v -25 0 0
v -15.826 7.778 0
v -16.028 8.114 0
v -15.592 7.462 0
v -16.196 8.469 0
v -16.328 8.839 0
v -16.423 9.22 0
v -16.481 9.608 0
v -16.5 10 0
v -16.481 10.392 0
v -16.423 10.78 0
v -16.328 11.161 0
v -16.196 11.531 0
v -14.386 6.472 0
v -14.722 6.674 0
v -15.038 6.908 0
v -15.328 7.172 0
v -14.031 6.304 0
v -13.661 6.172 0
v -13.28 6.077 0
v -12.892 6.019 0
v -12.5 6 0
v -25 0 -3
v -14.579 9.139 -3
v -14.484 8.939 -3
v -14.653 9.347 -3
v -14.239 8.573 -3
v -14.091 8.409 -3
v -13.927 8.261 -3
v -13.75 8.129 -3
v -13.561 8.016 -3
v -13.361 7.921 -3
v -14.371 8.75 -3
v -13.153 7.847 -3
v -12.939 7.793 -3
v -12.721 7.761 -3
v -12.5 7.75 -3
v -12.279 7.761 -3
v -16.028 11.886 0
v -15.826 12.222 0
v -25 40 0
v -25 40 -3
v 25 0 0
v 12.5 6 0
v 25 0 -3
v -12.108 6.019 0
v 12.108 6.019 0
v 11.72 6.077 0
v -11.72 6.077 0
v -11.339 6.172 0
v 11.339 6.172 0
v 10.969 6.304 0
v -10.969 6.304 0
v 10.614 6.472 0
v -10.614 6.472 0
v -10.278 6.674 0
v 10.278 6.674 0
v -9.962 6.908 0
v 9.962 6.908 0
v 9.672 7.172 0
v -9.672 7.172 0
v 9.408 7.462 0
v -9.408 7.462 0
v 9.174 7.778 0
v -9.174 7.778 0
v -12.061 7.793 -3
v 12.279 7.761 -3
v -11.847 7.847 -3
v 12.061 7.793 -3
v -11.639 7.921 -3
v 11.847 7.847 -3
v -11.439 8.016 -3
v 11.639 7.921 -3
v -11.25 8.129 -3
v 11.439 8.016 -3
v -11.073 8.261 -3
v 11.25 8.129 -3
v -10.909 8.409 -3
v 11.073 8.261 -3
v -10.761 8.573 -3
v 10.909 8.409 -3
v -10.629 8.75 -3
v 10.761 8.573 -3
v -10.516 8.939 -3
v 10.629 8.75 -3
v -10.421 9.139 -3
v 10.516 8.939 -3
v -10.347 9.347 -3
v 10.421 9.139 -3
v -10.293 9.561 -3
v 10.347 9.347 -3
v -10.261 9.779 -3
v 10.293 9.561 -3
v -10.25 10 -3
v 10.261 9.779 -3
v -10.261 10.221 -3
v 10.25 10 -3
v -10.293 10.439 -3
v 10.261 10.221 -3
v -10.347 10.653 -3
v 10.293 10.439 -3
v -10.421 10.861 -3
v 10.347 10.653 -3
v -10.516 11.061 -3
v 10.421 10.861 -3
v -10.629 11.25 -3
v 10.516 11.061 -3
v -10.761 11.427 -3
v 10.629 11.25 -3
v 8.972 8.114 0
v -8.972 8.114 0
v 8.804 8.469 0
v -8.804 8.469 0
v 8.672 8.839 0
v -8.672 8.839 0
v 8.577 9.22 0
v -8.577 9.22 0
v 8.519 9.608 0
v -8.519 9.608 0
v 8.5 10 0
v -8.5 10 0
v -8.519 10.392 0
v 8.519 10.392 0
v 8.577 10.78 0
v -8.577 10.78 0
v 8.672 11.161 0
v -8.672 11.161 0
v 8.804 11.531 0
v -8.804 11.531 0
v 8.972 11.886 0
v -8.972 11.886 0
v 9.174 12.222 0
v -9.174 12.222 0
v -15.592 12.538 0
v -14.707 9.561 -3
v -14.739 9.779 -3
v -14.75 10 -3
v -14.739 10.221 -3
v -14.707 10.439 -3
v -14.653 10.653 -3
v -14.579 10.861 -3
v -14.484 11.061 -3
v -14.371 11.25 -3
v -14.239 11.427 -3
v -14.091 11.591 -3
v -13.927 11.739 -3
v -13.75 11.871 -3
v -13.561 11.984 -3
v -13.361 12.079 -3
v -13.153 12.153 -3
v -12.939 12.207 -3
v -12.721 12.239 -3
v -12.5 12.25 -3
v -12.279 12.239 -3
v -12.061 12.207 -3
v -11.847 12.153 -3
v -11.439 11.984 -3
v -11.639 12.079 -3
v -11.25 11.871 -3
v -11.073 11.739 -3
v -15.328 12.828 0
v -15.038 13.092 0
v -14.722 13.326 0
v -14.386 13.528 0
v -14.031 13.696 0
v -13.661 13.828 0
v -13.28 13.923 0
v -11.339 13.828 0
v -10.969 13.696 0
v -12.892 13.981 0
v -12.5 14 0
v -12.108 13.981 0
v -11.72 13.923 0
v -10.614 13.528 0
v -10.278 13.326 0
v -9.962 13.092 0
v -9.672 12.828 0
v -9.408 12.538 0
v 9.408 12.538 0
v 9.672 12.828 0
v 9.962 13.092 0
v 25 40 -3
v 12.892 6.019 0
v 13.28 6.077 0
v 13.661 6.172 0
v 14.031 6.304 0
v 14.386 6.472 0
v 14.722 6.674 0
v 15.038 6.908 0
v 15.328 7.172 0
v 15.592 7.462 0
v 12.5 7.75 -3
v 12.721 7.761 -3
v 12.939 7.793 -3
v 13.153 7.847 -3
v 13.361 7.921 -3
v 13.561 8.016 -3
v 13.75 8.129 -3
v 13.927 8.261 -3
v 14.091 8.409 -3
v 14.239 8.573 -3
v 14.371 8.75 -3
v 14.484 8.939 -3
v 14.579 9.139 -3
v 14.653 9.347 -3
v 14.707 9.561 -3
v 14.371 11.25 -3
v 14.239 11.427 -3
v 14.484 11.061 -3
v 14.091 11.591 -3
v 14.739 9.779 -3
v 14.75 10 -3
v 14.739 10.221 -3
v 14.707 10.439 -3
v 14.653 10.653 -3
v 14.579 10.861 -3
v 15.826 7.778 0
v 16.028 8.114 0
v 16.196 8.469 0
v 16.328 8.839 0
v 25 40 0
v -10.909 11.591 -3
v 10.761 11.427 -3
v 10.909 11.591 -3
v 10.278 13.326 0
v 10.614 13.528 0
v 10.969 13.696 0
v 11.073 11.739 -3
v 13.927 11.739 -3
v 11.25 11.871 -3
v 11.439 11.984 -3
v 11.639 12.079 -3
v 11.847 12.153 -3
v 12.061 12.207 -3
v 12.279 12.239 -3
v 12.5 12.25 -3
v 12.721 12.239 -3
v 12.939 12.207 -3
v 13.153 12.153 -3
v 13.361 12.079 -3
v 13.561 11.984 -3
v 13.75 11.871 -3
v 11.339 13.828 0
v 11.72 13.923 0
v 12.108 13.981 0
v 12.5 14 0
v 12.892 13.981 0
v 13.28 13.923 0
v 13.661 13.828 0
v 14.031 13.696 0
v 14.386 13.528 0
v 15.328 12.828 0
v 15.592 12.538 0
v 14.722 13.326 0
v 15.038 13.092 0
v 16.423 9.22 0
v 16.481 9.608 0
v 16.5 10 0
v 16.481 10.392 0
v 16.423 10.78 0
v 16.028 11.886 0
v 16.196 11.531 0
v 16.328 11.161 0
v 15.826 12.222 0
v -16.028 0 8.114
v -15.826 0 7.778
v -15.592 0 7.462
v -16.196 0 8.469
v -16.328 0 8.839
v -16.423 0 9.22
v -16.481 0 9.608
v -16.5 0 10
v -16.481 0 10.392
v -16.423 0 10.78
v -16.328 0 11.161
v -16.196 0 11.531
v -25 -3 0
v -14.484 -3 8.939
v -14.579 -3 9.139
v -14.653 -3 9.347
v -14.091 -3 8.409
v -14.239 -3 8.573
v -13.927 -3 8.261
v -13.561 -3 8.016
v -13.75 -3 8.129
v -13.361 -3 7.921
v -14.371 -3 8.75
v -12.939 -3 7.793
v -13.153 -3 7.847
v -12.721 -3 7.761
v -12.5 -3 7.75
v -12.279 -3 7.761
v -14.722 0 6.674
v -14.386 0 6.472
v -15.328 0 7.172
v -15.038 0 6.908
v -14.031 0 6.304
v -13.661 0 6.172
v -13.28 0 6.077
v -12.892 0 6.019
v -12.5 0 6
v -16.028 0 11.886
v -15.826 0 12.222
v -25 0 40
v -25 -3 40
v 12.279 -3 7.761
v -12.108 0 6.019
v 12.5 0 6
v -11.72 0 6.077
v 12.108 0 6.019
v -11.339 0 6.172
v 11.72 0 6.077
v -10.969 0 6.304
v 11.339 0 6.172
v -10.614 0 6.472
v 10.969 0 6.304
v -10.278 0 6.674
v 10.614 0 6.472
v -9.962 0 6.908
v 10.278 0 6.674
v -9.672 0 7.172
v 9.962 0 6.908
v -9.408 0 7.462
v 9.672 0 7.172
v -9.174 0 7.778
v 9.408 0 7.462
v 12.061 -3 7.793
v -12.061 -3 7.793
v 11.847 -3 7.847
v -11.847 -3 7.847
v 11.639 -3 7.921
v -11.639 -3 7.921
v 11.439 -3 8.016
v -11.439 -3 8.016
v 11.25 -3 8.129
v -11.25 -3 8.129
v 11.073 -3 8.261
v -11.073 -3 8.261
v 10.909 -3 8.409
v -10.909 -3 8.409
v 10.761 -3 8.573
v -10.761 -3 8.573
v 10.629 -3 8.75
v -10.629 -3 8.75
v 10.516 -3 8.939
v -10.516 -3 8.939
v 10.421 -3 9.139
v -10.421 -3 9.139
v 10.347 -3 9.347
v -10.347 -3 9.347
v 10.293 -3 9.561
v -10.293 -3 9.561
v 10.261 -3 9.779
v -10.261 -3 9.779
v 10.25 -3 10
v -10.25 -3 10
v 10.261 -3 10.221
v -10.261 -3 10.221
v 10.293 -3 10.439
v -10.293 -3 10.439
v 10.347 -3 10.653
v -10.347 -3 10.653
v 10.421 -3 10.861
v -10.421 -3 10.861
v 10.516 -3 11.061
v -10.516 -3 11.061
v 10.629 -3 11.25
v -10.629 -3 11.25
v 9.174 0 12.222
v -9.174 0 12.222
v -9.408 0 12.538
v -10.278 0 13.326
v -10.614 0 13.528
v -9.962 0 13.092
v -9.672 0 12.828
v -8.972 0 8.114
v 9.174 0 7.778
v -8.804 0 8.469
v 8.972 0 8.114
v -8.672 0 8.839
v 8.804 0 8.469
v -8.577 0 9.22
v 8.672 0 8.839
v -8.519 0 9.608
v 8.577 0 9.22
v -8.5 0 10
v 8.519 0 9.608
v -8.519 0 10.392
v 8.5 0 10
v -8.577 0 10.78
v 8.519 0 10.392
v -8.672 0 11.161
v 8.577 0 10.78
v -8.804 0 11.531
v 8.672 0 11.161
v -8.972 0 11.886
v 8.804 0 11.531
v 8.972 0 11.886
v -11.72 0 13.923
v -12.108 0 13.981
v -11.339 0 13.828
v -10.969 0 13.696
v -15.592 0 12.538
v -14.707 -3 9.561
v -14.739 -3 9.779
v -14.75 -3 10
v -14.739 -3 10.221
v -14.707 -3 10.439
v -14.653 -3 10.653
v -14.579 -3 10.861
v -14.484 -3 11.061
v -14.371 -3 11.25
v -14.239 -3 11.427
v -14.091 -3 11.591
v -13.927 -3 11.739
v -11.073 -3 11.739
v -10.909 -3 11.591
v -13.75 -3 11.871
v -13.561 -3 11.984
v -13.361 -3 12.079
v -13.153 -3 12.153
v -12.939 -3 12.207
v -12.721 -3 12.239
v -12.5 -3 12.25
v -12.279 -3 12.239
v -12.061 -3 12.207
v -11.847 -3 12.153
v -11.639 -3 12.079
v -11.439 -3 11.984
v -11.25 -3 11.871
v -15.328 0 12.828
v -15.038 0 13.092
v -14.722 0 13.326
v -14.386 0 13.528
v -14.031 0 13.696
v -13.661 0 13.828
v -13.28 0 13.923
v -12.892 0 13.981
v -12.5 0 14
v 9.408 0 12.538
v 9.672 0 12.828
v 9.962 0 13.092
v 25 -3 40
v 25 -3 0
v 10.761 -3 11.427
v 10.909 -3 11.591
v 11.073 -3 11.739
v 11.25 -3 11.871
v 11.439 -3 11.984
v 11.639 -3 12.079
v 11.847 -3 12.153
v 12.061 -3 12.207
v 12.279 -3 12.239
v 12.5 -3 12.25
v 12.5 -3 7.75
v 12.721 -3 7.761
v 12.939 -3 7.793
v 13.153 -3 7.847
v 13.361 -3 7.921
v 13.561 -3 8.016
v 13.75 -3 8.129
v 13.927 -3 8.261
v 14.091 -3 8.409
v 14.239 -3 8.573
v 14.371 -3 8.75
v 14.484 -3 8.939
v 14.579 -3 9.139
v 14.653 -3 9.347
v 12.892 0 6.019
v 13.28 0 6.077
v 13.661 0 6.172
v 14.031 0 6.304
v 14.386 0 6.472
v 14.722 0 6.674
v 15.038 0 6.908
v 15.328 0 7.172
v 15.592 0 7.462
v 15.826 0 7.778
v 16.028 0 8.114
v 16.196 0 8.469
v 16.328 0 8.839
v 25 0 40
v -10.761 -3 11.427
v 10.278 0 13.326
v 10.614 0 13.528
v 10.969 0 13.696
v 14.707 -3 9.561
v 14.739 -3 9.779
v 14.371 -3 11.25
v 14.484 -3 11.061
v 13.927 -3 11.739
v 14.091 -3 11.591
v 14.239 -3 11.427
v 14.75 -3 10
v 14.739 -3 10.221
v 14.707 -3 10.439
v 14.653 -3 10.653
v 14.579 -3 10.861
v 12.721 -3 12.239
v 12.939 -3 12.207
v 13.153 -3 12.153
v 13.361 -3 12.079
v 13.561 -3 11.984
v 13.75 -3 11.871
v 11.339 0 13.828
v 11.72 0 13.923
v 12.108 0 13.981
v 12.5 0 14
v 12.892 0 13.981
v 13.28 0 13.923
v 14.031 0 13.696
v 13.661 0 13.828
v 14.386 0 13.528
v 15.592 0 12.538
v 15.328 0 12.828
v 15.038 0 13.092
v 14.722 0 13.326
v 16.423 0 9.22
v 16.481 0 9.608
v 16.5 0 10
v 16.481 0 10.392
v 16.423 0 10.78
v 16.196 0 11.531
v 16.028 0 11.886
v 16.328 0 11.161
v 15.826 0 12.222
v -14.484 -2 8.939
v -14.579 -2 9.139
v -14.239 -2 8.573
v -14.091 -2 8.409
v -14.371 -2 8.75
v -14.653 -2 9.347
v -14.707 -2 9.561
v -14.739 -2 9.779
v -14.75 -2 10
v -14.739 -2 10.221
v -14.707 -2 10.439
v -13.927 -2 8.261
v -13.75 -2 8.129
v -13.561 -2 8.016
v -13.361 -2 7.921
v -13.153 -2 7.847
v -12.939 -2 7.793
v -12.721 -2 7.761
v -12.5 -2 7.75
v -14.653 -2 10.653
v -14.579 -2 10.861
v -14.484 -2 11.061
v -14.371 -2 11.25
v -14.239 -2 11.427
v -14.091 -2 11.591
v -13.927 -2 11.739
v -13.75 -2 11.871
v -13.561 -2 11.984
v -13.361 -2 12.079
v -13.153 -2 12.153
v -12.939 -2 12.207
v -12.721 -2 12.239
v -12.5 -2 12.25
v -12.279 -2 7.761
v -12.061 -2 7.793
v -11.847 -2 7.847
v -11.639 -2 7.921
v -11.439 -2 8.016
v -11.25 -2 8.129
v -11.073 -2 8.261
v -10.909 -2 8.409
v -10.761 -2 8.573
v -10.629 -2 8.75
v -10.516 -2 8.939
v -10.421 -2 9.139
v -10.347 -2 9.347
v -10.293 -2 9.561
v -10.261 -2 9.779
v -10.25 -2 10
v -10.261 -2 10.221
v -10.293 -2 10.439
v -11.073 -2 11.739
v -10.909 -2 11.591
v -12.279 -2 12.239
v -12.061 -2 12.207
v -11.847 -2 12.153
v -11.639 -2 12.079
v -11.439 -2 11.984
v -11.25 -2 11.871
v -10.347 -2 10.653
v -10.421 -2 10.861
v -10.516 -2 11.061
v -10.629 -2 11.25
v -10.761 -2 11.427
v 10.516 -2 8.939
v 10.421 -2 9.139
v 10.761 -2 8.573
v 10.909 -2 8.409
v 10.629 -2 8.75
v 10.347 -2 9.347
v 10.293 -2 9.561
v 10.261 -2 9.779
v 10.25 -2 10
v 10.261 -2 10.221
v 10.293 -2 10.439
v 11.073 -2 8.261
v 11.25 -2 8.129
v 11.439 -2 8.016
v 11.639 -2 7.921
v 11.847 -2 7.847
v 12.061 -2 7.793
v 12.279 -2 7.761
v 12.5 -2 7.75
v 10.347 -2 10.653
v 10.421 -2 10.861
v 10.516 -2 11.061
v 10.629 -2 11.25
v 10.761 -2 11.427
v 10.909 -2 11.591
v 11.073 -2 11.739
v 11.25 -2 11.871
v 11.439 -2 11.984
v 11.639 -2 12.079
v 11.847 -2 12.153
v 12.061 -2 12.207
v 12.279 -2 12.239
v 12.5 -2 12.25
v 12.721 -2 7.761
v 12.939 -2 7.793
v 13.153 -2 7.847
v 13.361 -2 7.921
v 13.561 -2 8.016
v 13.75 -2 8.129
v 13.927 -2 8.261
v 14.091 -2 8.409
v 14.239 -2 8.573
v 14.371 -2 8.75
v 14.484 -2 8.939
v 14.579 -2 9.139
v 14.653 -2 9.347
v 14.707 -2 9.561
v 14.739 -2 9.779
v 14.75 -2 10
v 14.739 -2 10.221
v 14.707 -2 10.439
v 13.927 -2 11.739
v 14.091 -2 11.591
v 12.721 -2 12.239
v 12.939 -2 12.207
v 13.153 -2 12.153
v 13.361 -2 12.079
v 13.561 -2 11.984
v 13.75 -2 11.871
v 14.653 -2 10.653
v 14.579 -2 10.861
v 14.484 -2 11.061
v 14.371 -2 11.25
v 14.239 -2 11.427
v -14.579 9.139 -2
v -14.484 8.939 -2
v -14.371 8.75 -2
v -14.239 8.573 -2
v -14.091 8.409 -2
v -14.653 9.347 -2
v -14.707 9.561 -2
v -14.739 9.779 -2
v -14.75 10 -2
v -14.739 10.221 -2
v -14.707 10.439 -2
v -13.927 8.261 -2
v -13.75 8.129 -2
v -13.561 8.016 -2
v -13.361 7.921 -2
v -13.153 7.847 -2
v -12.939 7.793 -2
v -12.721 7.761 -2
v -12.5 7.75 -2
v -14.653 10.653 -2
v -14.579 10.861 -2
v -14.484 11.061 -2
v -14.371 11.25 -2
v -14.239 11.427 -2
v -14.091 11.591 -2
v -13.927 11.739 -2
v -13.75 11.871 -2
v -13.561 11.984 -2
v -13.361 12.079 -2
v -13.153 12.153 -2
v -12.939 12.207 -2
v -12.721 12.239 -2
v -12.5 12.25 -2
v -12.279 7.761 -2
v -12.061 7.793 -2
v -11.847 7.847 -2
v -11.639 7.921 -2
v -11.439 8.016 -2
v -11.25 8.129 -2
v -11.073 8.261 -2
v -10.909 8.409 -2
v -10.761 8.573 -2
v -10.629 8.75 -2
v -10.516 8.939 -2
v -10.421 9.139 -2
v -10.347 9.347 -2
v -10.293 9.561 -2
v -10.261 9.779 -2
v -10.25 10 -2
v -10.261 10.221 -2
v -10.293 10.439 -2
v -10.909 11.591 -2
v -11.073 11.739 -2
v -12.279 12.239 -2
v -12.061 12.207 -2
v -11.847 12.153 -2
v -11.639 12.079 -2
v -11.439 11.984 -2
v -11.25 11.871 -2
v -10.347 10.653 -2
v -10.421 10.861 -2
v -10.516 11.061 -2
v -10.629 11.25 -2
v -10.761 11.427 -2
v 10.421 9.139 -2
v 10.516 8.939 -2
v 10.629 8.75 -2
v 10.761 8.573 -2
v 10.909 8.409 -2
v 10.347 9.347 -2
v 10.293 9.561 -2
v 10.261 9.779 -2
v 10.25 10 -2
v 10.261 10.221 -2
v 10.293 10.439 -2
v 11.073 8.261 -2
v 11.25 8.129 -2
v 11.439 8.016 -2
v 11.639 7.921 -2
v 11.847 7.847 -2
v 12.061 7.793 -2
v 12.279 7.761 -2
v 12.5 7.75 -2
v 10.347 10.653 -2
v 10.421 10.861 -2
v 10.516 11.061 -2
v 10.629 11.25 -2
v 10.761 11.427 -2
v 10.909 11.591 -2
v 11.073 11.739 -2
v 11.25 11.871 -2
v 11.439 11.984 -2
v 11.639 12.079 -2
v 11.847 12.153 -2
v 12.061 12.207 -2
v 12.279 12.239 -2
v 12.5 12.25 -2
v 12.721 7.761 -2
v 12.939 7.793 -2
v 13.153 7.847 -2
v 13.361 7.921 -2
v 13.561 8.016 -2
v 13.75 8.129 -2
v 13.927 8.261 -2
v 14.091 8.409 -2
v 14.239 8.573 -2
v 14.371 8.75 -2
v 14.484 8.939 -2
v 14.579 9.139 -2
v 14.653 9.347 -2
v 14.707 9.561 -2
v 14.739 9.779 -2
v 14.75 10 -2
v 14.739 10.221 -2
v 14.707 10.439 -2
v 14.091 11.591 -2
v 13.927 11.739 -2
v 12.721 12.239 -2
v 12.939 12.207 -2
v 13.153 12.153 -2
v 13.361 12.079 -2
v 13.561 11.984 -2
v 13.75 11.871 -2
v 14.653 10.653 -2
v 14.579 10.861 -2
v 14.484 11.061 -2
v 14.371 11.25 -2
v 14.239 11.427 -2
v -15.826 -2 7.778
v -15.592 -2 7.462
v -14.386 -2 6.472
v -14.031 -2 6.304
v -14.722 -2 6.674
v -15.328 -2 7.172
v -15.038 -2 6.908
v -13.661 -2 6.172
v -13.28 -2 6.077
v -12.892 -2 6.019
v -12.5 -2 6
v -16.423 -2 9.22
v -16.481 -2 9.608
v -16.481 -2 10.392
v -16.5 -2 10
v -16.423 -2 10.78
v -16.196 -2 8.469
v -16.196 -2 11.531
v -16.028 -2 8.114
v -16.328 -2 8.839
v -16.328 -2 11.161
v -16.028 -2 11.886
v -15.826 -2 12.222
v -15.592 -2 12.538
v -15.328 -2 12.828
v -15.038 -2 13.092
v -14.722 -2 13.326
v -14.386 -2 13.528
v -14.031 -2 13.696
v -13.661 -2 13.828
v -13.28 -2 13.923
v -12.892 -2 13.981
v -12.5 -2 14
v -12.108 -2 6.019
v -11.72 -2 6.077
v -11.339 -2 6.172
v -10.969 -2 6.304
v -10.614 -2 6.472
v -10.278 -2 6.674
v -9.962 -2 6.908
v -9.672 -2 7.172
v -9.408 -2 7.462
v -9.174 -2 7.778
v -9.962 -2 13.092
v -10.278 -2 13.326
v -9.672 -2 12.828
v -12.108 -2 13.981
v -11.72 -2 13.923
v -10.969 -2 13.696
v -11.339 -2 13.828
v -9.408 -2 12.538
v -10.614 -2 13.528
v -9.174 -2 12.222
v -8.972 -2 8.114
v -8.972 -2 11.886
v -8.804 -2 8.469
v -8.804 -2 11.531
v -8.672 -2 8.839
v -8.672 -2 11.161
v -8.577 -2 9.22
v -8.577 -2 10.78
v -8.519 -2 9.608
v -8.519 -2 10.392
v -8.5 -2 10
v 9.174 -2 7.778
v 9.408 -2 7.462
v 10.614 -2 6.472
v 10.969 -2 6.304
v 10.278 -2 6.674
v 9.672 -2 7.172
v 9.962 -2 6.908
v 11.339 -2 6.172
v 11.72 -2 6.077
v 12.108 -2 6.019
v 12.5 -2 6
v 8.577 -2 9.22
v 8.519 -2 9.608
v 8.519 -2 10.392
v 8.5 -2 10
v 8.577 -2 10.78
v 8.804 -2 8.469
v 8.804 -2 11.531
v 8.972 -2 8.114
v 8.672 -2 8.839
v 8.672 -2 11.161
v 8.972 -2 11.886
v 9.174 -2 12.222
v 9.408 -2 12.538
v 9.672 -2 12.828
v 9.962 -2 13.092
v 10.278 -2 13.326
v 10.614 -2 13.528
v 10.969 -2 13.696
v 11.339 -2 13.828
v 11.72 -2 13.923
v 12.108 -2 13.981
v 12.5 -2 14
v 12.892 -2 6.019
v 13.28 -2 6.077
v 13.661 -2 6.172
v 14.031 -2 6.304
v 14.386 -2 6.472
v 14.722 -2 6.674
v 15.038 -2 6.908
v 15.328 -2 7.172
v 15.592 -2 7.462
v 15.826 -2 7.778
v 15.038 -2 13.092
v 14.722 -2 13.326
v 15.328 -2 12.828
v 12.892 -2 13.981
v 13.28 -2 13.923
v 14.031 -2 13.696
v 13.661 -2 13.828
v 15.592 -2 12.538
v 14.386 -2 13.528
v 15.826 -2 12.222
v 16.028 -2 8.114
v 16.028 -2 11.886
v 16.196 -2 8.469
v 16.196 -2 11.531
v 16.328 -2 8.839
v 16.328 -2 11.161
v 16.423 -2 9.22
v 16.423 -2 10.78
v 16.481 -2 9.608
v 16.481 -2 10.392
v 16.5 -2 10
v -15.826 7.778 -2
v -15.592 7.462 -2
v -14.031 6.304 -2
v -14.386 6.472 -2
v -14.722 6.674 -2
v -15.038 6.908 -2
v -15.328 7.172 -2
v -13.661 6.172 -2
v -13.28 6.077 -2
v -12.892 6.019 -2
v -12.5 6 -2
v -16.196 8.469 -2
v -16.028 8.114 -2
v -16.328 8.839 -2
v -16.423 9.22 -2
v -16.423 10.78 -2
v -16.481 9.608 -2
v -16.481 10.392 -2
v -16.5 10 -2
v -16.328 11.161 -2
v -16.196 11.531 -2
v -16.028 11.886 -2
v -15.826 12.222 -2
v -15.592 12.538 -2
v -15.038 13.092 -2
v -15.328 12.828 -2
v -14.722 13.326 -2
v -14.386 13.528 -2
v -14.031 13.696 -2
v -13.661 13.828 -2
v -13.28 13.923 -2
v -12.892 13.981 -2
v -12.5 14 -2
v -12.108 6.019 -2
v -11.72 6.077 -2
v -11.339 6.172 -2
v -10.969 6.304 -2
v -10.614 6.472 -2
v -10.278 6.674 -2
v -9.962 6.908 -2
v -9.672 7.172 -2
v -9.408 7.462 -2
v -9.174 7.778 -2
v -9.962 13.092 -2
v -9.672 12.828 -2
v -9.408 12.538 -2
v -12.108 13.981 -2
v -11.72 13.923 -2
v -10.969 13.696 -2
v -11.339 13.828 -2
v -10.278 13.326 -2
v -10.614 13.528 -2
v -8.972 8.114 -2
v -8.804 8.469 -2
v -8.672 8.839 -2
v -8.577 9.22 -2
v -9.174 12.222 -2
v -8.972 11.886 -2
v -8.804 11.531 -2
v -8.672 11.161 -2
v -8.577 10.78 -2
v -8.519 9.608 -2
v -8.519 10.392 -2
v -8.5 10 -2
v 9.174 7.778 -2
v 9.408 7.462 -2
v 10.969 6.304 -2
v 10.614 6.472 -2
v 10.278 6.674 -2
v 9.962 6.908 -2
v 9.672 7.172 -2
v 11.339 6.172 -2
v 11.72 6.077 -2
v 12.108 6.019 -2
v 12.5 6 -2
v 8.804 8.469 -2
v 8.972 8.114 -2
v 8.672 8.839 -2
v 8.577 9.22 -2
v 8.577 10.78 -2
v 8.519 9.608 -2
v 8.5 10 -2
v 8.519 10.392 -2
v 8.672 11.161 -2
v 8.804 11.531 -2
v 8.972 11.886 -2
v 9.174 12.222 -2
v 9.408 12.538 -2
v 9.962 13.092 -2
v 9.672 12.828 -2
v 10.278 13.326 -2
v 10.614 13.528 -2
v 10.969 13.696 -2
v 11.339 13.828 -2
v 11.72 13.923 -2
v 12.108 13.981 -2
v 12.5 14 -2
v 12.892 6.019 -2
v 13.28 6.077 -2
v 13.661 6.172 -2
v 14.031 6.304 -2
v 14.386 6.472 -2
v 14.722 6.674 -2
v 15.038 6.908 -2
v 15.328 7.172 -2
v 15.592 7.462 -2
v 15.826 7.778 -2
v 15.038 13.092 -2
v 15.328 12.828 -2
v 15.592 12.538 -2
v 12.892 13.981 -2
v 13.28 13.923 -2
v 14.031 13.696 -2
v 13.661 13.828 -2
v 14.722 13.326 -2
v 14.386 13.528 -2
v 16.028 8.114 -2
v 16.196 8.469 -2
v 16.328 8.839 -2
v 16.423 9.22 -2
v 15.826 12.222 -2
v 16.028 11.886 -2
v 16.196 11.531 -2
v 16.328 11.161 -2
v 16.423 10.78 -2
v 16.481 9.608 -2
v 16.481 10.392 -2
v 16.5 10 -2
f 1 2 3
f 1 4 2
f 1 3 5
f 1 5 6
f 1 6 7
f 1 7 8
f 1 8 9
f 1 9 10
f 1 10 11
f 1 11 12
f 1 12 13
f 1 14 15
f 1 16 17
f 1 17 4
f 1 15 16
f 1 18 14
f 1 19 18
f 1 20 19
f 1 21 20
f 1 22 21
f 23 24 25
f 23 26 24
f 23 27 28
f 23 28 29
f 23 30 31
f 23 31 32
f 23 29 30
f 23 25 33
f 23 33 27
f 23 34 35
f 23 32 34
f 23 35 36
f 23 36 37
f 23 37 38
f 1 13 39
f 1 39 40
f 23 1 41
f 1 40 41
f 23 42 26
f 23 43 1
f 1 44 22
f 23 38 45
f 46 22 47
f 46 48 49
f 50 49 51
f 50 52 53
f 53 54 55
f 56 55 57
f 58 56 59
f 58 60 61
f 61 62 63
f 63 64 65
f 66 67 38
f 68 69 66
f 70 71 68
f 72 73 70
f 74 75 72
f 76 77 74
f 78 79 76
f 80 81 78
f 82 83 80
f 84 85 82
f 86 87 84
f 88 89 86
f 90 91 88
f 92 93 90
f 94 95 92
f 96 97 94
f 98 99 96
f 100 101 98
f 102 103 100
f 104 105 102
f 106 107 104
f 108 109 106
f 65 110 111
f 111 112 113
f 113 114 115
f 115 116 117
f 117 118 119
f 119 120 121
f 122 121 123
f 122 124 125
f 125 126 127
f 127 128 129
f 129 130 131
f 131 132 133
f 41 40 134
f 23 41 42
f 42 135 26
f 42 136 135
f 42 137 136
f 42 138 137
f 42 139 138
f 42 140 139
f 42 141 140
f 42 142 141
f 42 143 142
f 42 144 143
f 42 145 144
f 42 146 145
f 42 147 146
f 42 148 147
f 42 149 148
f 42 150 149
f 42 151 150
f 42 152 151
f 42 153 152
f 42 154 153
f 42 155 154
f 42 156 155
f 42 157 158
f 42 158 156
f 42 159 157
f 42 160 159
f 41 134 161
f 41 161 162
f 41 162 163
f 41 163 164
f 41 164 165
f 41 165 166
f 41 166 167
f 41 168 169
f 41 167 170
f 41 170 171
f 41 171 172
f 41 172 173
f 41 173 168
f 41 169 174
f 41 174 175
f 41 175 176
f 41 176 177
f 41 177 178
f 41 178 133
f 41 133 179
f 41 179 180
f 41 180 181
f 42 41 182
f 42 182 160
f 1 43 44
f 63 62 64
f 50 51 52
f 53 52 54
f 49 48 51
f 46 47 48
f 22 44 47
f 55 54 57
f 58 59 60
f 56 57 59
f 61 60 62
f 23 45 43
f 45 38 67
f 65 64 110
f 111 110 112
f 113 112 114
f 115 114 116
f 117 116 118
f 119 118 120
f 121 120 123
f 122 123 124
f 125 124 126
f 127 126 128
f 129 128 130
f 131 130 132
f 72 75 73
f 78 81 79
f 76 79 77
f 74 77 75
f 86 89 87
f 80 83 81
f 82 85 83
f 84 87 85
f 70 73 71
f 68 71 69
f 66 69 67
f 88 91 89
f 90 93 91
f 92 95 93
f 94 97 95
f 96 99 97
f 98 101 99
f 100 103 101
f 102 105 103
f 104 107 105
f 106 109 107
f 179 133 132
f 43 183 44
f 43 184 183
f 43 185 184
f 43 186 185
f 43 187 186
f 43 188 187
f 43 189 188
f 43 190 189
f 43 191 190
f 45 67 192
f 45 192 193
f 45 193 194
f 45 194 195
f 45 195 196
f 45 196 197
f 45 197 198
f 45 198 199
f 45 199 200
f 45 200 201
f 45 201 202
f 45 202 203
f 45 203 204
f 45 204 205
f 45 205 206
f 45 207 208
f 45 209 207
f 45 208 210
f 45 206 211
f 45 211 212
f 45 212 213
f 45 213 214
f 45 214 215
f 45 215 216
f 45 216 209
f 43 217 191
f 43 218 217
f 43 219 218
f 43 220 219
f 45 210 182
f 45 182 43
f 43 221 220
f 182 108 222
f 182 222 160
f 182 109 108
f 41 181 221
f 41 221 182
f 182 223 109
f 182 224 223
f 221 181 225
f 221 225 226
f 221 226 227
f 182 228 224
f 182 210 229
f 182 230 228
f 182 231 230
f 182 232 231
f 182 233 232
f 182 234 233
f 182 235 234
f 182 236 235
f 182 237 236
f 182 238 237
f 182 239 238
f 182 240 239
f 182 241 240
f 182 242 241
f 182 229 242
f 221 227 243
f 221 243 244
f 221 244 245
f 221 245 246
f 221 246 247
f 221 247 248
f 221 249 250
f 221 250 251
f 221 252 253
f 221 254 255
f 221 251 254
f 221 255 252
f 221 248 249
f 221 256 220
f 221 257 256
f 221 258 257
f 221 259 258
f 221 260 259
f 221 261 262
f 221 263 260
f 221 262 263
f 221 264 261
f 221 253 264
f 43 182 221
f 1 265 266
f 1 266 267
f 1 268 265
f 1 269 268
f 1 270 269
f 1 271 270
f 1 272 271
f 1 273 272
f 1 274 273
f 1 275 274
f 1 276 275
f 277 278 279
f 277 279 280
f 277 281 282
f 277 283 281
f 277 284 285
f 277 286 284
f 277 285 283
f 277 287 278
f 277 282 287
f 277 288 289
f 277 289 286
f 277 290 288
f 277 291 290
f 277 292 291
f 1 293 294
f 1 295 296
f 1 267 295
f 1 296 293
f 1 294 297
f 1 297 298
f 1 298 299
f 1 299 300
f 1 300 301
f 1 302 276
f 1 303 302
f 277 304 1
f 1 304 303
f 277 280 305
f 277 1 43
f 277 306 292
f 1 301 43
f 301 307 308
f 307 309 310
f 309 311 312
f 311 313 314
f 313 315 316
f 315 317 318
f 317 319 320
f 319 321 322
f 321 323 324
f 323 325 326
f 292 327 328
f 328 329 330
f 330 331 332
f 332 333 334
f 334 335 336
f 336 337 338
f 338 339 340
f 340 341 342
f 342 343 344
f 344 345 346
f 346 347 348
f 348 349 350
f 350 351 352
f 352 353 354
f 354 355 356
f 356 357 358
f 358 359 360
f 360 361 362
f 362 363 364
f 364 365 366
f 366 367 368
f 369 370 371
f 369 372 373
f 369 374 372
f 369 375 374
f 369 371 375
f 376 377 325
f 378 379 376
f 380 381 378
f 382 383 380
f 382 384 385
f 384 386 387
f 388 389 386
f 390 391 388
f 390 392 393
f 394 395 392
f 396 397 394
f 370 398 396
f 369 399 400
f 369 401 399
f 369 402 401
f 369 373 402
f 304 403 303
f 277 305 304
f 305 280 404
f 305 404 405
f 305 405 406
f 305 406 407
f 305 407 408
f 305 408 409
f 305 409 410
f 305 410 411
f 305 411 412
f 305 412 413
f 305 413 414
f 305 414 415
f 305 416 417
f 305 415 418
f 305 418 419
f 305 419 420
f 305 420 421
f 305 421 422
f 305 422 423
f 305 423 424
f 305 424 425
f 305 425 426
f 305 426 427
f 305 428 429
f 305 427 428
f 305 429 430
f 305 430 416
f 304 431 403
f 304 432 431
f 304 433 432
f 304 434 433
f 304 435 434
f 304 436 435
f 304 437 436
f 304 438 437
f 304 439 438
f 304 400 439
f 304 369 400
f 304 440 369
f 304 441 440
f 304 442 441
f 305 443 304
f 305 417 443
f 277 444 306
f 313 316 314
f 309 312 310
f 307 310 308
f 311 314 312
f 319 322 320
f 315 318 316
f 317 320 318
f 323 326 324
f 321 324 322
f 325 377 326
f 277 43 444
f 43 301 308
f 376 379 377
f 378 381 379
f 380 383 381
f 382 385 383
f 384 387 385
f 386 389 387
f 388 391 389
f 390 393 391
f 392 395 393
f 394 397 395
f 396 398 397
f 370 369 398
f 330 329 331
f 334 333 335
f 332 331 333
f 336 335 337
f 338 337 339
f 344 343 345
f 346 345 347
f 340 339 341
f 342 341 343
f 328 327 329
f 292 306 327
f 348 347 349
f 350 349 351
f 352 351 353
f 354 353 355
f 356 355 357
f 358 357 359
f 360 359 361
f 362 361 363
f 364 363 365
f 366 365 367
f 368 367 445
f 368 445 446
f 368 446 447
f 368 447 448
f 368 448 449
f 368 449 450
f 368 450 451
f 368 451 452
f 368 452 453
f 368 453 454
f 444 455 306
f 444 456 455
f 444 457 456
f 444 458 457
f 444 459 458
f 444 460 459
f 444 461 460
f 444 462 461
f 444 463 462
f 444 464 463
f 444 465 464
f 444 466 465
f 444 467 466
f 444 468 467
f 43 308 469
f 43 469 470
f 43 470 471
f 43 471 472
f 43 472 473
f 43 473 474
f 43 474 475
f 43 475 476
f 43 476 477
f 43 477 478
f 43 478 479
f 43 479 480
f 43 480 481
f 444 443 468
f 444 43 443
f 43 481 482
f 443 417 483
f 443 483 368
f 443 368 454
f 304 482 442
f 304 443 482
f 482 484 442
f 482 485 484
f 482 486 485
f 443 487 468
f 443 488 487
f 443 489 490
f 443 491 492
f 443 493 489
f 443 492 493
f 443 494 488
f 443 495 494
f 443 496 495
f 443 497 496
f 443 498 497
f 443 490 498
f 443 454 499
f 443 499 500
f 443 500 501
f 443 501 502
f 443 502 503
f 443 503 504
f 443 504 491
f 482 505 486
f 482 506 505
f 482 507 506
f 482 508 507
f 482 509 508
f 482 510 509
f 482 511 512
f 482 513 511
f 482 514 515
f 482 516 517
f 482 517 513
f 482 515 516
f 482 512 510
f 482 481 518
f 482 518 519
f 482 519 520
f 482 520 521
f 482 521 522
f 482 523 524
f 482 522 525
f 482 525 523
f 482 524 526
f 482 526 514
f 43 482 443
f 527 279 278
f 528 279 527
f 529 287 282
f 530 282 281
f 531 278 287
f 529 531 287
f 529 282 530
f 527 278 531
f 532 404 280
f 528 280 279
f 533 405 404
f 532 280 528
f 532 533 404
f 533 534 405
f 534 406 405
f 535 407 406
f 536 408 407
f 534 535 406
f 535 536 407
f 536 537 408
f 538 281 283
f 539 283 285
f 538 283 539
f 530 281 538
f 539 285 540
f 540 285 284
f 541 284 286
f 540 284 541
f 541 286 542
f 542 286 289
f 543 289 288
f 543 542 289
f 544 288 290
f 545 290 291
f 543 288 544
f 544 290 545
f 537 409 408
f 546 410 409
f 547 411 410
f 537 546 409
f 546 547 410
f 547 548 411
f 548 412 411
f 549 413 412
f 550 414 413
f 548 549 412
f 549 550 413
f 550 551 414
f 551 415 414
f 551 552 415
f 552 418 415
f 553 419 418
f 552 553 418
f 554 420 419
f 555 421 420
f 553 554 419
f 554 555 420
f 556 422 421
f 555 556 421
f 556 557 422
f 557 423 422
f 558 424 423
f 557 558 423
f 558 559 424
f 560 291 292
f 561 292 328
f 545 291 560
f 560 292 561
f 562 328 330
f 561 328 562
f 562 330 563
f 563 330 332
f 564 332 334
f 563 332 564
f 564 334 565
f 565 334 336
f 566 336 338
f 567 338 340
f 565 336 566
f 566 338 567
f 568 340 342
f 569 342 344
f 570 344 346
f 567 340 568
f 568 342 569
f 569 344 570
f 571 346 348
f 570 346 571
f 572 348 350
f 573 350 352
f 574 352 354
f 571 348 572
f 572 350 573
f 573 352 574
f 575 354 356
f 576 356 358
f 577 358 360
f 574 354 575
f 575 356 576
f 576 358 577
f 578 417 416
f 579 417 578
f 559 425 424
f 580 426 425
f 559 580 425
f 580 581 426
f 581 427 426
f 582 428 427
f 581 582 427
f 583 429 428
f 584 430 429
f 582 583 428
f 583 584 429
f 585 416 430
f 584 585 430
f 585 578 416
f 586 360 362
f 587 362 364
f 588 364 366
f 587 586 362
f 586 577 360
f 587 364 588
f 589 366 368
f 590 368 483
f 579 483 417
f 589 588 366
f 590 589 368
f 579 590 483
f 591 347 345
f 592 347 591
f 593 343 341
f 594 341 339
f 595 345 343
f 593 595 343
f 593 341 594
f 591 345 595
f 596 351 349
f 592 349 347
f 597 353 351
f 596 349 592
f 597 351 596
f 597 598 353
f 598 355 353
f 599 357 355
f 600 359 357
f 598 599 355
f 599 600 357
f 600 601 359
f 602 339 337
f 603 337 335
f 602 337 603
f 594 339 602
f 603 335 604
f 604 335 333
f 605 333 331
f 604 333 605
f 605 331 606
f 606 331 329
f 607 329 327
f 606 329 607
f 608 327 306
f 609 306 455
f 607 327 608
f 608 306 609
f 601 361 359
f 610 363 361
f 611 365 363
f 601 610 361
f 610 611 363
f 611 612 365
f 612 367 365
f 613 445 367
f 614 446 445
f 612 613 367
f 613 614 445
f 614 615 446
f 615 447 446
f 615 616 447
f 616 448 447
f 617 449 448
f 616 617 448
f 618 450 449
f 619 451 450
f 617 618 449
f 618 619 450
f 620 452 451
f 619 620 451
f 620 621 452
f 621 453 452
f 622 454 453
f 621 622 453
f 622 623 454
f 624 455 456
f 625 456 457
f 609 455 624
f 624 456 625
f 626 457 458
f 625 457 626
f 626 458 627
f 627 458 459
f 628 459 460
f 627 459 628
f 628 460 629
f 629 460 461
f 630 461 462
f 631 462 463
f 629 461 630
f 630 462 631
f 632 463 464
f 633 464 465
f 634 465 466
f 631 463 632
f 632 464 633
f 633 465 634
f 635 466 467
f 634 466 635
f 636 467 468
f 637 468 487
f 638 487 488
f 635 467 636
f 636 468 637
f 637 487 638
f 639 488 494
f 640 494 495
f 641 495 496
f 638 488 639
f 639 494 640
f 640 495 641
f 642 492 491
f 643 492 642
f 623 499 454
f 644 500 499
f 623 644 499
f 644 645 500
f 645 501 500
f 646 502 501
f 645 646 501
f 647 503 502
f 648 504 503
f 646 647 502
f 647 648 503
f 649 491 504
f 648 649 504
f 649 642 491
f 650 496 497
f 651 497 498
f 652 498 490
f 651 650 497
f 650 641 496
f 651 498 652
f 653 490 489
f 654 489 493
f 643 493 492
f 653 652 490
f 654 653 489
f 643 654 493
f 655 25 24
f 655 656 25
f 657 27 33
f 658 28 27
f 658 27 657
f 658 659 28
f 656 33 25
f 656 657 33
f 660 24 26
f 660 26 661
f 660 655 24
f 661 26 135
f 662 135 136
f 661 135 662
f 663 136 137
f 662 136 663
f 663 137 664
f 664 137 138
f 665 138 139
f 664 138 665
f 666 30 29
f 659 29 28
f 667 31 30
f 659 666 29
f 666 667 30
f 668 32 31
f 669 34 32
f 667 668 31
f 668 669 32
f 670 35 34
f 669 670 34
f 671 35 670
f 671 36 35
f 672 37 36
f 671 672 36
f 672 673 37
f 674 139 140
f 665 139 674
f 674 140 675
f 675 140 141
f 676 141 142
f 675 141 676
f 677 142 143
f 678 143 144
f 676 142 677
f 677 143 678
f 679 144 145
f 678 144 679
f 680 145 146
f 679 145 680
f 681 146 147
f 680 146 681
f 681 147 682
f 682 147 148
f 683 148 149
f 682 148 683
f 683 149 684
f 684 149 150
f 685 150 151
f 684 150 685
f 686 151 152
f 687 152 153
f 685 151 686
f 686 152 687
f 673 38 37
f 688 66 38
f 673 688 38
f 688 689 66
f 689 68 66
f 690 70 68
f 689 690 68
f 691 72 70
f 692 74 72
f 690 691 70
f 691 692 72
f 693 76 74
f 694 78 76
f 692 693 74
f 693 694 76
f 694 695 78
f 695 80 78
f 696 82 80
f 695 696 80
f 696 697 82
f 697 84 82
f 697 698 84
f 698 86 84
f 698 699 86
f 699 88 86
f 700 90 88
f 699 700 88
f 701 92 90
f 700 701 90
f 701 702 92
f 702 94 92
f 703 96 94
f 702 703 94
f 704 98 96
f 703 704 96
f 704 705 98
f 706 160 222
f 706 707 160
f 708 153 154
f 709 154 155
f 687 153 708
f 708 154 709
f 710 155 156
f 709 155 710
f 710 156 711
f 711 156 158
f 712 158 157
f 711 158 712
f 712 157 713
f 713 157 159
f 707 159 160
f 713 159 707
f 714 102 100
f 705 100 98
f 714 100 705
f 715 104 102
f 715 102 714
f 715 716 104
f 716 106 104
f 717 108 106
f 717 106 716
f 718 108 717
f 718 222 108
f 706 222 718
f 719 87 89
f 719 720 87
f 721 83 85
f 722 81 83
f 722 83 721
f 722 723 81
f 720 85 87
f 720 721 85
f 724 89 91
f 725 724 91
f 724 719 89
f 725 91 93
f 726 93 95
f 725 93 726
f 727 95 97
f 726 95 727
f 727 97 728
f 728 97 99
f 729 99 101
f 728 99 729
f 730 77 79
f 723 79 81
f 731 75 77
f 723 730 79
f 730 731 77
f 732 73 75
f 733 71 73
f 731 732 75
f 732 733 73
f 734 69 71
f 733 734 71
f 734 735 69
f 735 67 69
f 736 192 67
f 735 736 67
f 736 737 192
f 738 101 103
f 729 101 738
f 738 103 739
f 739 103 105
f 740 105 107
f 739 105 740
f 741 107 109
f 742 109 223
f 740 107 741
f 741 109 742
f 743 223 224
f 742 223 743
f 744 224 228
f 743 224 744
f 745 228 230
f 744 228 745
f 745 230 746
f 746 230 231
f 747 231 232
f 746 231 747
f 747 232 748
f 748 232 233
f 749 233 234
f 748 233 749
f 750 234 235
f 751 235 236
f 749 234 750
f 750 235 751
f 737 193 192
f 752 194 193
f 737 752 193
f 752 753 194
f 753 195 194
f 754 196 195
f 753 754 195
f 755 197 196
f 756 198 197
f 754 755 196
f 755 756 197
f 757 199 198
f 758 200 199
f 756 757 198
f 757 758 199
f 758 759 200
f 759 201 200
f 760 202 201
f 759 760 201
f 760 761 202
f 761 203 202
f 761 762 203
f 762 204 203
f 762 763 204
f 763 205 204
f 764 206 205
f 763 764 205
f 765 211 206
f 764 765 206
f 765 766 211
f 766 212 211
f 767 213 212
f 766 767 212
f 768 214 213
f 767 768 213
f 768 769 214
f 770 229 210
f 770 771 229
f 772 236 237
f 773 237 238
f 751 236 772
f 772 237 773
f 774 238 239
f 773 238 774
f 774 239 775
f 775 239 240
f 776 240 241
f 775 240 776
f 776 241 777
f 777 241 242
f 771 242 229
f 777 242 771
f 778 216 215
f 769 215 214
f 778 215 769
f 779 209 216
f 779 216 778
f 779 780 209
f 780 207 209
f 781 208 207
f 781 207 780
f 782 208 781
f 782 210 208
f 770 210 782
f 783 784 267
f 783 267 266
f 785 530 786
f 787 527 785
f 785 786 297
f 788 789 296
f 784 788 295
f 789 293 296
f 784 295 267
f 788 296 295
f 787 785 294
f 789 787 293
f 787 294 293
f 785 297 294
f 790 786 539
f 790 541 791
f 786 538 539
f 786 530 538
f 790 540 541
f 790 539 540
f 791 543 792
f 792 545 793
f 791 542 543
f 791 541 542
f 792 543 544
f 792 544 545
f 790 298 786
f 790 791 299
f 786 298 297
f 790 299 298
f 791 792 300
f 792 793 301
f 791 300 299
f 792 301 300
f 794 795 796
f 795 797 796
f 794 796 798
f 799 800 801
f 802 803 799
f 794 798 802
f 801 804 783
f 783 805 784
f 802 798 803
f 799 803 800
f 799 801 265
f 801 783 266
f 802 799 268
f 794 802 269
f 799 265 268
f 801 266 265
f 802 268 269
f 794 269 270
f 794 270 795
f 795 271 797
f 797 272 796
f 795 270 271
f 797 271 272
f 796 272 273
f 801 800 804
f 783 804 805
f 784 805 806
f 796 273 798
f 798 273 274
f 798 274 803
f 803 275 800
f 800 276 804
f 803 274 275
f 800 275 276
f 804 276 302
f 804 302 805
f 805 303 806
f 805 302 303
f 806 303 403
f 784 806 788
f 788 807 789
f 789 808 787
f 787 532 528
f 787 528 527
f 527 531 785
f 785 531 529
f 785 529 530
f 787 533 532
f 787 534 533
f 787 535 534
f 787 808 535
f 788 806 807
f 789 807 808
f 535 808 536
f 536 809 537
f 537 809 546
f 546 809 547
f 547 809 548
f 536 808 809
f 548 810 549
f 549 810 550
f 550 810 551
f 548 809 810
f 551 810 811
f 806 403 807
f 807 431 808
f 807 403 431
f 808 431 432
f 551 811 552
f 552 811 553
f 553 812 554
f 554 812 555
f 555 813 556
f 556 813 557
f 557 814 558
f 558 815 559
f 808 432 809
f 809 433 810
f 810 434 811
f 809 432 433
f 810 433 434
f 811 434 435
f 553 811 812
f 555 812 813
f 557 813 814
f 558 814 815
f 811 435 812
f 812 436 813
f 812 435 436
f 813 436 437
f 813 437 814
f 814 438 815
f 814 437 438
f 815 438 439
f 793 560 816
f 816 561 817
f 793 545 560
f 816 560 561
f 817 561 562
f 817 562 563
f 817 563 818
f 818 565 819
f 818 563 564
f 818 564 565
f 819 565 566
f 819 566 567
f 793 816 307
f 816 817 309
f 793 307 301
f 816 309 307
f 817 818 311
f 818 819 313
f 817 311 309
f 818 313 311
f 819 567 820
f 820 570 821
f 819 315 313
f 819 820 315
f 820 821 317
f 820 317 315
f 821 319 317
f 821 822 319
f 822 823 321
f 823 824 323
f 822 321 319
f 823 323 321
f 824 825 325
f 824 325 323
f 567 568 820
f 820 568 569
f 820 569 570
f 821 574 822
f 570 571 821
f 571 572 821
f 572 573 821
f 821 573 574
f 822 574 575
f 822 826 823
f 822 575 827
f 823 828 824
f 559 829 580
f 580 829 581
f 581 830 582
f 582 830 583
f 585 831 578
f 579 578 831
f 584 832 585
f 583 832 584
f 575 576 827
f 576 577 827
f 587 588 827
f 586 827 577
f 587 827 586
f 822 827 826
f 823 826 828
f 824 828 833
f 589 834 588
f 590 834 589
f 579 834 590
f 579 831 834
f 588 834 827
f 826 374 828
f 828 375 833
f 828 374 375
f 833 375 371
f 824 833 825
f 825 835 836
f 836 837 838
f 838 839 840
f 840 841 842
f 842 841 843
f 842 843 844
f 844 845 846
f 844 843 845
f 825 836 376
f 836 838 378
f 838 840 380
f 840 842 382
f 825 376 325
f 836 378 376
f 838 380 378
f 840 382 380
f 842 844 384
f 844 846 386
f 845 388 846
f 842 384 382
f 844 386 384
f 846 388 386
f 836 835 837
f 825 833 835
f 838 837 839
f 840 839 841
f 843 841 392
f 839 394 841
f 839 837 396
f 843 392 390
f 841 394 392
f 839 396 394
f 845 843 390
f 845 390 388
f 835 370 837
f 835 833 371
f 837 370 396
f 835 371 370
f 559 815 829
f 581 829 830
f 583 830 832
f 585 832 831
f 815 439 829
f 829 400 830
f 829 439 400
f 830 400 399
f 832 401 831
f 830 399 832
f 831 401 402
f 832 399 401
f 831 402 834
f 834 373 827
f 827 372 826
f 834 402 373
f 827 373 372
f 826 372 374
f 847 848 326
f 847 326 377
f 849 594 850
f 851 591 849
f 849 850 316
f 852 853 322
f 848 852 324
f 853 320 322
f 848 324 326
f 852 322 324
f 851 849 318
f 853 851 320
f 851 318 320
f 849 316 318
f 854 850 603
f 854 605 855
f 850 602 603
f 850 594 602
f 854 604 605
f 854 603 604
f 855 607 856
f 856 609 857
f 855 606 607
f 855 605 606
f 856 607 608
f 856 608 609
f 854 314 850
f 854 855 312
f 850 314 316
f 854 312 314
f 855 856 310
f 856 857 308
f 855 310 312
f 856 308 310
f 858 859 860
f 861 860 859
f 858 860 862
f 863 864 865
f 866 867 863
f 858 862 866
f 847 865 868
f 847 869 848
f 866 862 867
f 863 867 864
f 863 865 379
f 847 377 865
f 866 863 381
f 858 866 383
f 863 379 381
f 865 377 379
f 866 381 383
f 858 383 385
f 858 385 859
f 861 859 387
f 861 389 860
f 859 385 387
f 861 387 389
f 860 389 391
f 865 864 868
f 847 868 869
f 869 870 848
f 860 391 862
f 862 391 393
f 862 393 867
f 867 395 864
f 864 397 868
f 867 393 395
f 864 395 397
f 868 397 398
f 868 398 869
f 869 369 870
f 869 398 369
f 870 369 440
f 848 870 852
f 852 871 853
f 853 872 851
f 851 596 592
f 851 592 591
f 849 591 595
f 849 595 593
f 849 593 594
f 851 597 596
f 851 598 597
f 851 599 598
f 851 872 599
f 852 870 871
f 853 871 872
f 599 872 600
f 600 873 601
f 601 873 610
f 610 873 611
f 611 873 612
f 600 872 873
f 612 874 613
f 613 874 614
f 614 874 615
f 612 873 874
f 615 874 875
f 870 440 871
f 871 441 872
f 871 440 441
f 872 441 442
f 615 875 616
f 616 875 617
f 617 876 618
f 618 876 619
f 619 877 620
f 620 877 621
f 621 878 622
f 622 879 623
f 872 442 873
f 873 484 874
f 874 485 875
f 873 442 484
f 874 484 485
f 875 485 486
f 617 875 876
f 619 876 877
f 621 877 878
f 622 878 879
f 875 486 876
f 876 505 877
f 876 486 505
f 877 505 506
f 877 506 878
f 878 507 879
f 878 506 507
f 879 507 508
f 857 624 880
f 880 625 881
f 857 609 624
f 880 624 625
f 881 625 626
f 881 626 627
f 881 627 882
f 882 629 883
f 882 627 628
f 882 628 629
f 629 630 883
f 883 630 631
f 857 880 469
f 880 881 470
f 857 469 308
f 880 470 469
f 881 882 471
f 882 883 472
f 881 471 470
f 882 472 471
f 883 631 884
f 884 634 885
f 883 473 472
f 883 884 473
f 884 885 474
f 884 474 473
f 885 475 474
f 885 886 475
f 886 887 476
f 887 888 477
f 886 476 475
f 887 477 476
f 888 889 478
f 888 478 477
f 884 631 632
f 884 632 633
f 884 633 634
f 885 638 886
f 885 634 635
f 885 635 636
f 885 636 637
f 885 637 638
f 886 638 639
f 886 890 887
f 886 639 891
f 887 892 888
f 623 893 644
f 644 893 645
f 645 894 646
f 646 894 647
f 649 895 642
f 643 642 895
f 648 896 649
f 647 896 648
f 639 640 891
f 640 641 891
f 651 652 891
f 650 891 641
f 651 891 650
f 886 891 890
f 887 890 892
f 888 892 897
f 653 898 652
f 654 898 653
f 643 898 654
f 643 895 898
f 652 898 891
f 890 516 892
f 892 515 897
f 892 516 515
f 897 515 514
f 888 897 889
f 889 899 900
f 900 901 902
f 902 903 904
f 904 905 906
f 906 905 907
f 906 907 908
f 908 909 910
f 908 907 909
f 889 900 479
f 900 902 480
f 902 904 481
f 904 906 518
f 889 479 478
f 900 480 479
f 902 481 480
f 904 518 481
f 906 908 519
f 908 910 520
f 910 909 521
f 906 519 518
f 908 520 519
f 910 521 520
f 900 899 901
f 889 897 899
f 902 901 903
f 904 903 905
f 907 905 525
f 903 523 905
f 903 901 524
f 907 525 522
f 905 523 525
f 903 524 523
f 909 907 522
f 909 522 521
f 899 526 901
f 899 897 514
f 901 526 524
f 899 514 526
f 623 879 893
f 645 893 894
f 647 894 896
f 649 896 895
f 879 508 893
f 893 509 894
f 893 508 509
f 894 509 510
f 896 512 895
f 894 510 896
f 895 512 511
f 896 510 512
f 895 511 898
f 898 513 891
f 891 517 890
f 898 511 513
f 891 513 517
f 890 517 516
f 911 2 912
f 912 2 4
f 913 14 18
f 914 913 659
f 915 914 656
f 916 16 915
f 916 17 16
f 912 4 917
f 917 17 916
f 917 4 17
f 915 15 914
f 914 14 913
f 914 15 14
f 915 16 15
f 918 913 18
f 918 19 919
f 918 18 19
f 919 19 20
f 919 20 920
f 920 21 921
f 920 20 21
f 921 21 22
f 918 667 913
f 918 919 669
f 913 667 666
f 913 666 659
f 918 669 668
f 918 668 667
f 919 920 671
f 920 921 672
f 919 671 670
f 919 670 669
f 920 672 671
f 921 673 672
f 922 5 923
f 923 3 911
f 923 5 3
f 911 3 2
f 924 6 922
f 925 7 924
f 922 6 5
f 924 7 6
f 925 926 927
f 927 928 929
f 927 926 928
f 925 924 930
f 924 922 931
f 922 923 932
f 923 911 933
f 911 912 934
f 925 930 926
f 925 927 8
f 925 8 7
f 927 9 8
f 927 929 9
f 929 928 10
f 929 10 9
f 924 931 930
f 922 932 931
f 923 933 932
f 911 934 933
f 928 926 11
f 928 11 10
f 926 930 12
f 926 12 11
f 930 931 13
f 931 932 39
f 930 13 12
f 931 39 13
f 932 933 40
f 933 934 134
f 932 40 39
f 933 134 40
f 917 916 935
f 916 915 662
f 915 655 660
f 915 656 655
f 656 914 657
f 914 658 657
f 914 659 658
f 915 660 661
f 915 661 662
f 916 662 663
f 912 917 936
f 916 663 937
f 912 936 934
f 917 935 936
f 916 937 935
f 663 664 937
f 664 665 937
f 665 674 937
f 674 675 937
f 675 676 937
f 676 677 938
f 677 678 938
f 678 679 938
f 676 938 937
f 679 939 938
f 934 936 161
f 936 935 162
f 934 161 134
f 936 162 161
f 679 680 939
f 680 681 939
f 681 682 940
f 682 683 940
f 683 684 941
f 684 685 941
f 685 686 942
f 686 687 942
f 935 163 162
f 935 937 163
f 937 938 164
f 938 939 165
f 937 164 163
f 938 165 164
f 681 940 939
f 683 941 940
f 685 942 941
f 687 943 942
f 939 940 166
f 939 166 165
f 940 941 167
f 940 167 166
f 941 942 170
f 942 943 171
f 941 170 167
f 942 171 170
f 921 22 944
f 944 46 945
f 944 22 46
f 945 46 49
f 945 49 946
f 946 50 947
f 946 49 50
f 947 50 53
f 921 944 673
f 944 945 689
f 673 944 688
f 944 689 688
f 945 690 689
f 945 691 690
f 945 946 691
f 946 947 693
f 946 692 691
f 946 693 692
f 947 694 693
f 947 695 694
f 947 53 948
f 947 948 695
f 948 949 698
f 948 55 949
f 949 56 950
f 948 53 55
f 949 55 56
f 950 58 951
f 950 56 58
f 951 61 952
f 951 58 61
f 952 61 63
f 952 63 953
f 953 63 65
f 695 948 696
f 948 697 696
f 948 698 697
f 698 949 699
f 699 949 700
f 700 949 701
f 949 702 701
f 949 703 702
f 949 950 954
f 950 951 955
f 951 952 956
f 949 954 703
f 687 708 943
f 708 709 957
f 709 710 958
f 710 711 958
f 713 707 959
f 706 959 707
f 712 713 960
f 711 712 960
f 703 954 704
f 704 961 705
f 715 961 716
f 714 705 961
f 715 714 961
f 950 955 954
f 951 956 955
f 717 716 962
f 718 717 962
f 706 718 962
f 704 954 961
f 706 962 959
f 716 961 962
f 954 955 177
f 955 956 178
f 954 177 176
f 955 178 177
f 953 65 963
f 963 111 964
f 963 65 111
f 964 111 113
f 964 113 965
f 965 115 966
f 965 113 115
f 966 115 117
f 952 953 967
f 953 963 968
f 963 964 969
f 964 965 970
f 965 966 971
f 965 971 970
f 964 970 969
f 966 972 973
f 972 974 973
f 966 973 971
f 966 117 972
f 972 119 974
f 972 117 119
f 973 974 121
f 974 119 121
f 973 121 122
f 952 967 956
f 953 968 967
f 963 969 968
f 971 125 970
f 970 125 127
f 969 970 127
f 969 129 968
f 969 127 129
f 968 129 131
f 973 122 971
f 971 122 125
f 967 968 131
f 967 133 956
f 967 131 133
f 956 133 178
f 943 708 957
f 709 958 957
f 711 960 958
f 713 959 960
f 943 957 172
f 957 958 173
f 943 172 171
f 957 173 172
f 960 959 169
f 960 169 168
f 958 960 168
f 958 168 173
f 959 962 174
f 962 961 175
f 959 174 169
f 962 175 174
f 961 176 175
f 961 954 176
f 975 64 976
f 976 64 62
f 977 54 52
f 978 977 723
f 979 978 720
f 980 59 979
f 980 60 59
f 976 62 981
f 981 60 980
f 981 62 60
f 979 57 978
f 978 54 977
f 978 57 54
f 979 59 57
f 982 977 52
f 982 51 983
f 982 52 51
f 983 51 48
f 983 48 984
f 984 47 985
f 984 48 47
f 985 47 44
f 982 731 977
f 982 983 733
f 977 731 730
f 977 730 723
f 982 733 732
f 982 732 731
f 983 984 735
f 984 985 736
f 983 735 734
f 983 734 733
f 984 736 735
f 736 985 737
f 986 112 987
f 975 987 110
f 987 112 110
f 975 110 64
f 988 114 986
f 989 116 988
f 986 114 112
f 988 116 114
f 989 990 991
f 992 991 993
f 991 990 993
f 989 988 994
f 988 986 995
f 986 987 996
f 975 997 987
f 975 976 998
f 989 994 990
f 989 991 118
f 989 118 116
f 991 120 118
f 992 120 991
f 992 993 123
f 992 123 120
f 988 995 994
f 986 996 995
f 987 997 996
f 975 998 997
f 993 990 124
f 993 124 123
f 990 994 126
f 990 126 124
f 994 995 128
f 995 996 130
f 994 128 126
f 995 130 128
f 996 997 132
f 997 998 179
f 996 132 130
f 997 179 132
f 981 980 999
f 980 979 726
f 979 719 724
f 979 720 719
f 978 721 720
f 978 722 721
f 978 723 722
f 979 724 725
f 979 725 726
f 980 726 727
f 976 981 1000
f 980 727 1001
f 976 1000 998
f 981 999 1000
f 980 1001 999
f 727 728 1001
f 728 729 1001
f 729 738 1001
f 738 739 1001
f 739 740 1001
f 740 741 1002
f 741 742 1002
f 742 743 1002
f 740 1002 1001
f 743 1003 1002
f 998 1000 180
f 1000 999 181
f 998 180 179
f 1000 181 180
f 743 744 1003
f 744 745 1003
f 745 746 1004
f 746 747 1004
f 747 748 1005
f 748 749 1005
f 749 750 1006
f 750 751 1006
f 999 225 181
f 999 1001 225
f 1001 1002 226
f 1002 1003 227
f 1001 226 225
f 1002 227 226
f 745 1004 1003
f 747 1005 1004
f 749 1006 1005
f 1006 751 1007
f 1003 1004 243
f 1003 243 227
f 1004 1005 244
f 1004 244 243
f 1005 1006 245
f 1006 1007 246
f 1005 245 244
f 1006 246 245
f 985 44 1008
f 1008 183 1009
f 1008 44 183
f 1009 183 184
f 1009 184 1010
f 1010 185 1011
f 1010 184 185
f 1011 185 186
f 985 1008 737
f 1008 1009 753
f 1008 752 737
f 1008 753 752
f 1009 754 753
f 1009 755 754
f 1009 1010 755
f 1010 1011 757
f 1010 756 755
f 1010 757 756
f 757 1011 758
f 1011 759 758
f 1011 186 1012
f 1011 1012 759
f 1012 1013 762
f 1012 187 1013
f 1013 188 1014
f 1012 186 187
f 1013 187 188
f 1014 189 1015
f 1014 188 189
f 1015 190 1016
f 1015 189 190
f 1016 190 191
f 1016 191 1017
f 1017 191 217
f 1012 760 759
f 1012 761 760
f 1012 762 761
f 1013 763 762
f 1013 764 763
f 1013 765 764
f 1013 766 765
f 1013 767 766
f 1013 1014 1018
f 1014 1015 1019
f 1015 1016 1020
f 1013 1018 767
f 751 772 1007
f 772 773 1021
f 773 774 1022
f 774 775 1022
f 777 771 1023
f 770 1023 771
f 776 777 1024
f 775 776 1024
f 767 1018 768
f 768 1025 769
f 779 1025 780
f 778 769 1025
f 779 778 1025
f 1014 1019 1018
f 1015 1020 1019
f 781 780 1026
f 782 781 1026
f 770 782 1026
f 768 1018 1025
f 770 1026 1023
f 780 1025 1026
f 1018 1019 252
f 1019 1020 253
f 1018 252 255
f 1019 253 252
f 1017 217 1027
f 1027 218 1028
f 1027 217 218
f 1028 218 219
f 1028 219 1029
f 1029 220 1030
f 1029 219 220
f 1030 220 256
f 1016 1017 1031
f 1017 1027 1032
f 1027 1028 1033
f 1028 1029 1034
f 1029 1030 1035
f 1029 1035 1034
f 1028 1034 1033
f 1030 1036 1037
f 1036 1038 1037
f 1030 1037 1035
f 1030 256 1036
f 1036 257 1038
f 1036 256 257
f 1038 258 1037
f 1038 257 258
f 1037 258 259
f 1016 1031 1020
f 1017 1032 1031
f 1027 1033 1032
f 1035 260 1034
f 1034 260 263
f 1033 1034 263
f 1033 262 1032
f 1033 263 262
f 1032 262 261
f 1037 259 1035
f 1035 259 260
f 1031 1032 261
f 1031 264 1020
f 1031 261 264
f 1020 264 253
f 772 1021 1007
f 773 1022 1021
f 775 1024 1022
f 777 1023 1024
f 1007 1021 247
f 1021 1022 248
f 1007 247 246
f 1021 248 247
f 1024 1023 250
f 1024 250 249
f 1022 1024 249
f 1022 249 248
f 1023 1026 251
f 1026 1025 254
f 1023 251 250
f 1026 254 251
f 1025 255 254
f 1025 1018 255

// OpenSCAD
// L-bracket with countersunk holes

// パラメータ
width      = 50;   // 幅 (X)
depth      = 40;   // 水平面の奥行き (Y)
height     = 40;   // 垂直面の高さ (Z)
thickness  = 3;    // 板厚

hole_dia   = 4.5;  // 貫通穴径
cs_dia     = 8;    // 皿座面径
cs_depth   = 2;    // 皿座面深さ
edge_off   = 10;   // 縁からの距離

$fn = 64;

// 皿穴(Z軸方向に貫通、皿座面は -Z 側=外側)
// 原点を穴中心として、+Z 側が内側、-Z 側が外側になるように作る
module countersunk_hole(len) {
    union() {
        // 貫通穴(十分に長く)
        translate([0, 0, -len])
            cylinder(h = len * 2, d = hole_dia);
        // 皿座面(外側 = -Z 側)
        translate([0, 0, -cs_depth])
            cylinder(h = cs_depth + 0.01, d = cs_dia);
    }
}

difference() {
    // 本体
    union() {
        // 水平面: +Y 方向, 厚みは -Z〜0
        translate([-width/2, 0, -thickness])
            cube([width, depth, thickness]);
        // 垂直面: +Z 方向, 厚みは -Y〜0
        translate([-width/2, -thickness, 0])
            cube([width, thickness, height]);
    }

    // 水平面の穴 2 個(外側 = 下面 = -Z 側)
    for (x = [-1, 1]) {
        translate([x * width/4, edge_off, 0])
            countersunk_hole(50);
    }

    // 垂直面の穴 2 個(外側 = -Y 側)
    // X軸まわりに回転して垂直面用に向ける
    for (x = [-1, 1]) {
        translate([x * width/4, 0, edge_off])
            rotate([-90, 0, 0])
                countersunk_hole(50);
    }
}
